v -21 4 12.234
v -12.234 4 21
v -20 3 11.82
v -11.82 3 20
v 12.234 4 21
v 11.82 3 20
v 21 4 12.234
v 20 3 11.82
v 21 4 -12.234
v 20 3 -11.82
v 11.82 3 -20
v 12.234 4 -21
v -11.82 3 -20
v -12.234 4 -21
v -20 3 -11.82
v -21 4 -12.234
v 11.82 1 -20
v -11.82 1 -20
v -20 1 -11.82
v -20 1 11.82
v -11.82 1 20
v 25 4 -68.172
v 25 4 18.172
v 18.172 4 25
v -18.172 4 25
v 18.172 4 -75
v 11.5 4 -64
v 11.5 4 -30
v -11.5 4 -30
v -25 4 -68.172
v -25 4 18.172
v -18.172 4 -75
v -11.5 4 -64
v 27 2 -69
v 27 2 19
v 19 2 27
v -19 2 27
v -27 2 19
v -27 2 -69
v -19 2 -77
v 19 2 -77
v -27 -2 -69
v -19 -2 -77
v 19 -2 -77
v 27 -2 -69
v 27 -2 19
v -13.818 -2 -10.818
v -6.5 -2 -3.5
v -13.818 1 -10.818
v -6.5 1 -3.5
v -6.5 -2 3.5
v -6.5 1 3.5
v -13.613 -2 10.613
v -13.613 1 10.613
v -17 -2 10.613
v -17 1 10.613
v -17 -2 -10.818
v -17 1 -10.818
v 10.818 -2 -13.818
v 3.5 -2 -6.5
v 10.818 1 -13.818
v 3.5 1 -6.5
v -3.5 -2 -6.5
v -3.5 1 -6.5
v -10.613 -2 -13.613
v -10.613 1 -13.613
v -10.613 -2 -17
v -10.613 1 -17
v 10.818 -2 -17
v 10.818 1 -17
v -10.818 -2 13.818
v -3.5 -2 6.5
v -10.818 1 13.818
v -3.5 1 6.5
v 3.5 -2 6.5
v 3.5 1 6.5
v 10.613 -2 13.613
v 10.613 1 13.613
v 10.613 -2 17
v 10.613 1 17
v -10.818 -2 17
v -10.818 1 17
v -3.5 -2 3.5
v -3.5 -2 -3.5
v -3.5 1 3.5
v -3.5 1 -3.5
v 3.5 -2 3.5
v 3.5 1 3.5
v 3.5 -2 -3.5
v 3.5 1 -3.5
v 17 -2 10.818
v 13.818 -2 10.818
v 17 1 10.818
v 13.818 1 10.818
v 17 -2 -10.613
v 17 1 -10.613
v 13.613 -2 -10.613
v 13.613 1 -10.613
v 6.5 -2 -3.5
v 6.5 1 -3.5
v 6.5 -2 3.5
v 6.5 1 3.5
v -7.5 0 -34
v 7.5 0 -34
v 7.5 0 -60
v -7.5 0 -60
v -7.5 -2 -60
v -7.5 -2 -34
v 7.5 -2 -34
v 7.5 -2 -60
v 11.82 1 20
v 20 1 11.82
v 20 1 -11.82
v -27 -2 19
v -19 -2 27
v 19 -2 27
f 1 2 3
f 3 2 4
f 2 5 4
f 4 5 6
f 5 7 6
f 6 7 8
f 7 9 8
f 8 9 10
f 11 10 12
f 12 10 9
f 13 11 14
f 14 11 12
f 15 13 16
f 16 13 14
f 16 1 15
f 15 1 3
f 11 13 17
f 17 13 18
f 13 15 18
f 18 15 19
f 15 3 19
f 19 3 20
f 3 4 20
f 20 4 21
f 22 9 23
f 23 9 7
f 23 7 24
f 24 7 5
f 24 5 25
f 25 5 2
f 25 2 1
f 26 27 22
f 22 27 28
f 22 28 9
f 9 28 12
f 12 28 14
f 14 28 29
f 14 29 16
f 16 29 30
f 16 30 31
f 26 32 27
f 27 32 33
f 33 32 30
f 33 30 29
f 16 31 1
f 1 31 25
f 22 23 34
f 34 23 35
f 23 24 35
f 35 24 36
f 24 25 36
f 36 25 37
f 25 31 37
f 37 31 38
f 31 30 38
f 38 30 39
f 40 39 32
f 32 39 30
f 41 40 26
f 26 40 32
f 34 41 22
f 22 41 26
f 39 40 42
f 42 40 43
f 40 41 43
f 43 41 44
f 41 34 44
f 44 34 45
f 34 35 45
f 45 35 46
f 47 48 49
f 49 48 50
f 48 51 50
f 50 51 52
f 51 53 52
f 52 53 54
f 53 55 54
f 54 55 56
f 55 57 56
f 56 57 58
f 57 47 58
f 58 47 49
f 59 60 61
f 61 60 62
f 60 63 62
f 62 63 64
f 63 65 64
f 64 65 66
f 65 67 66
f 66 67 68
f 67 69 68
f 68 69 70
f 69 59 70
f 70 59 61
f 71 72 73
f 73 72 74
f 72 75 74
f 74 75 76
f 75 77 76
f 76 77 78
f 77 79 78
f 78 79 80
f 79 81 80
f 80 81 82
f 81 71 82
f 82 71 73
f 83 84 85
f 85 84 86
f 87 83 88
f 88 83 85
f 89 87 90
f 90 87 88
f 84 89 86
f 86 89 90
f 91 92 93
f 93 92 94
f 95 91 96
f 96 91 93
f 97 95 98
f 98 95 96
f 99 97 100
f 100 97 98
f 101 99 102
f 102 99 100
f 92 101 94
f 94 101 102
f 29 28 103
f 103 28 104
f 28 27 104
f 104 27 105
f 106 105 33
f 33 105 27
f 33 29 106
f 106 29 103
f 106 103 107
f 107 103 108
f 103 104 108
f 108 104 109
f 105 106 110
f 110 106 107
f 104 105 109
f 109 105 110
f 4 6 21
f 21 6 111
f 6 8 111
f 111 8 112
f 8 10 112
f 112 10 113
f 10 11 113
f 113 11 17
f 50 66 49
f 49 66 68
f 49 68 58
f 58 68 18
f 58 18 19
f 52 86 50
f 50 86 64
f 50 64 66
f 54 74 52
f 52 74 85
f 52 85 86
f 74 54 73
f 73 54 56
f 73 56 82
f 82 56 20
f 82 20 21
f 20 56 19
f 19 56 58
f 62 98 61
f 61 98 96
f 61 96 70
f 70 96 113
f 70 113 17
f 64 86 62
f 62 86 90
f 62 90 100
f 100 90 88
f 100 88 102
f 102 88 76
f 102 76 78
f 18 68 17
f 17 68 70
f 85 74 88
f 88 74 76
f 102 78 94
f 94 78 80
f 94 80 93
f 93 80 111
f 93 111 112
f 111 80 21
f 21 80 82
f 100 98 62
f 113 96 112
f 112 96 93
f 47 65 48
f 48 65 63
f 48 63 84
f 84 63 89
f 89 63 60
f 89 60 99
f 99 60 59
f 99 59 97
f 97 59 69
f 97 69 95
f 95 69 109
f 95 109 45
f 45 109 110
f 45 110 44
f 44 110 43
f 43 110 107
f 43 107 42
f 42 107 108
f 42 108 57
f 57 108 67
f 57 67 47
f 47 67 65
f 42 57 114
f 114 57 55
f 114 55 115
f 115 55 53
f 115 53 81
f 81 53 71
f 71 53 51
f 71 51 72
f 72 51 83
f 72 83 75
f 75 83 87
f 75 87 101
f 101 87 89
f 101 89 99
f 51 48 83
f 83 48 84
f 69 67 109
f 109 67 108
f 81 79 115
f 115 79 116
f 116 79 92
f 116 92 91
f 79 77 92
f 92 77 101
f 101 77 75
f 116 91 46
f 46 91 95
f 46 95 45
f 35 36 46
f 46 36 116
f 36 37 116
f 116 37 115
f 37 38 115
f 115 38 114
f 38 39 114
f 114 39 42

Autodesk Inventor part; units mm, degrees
ref_plane "YZ Plane" through (0, 0, 0) normal (1, 0, 0) x (0, 1, 0)
ref_plane "XZ Plane" through (0, 0, 0) normal (0, 1, 0) x (-1, 0, 0)
ref_plane "XY Plane" through (0, 0, 0) normal (0, 0, 1) x (1, 0, 0)
sketch "Sketch1" plane through (0, 0, 0) normal (0, 1, 0) x (-1, 0, 0)
  line L0 (-20, 20) -> (20, 20)
  line L1 (20, 20) -> (20, -20)
  line L2 (20, -20) -> (-20, -20)
  line L3 (-20, -20) -> (-20, 20)
  line L4 (-20, 20) -> (20, -20) construction
  line L5 (20, 20) -> (-20, -20) construction
  line L6 (27, 27) -> (-27, 27)
  line L7 (-27, 27) -> (-27, -77)
  line L8 (-27, -77) -> (27, -77)
  line L9 (27, -77) -> (27, 27)
  line L10 (27, -27) -> (-27, -27)
  line L11 (7.5, -39) -> (-7.5, -39)
  line L12 (-7.5, -39) -> (-7.5, -65)
  line L13 (-7.5, -65) -> (7.5, -65)
  line L14 (7.5, -65) -> (7.5, -39)
  line L15 (-27, 19) -> (-19, 27)
  line L16 (27, 19) -> (19, 27)
  line L17 (0, -31.8198) -> (-31.8198, 0)
  line L18 (-31.8198, 0) -> (0, 31.8198)
  line L19 (0, 31.8198) -> (31.8198, 0)
  line L20 (31.8198, 0) -> (0, -31.8198)
  line L21 (0, -31.8198) -> (0, 31.8198) construction
  line L22 (-31.8198, 0) -> (31.8198, 0) construction
  line L23 (-19, -77) -> (-27, -69)
  line L24 (27, -69) -> (19, -77)
  point P0 (0, 0)
  point P1 (20, 0)
  point P2 (0, -27)
  point P3 (0, -65)
  point P4 (-7.5, -52)
  point P5 (-20, -11.8198)
  point P6 (-20, 11.8198)
  point P7 (-11.8198, 20)
  point P8 (11.8198, 20)
  point P9 (20, 11.8198)
  point P10 (20, -11.8198)
  point P11 (11.8198, -20)
  point P12 (-11.8198, -20)
  dimension "d0" = 40
  dimension "d1" = 40
  dimension "d2" = 7
  dimension "d3" = 7
  dimension "d4" = 7
  dimension "d5" = 7
  dimension "d6" = 50
  dimension "d7" = 0
  dimension "d8" = 25
  dimension "d9" = 26
  dimension "d10" = 15
  dimension "d11" = 45
  dimension "d12" = 135
  dimension "d13" = 45
  dimension "d14" = 8
  dimension "d15" = 135
  dimension "d16" = 8
  dimension "d21" = 135
  dimension "d22" = 8
  dimension "d23" = 8
extrude "Extrusion1" add sketch "Sketch1" along normal blind 4 and the other way blind 2 contours L3 L18 L7 L15 L6 L0 | L0 L18 L3 | L18 L6 L19 L0 | L0 L19 L1 L20 L2 L17 L3 L18 | L3 L17 L7 L18 | L19 L6 L16 L9 L1 L0 | L0 L1 L19 | L17 L2 L3 | L3 L2 L17 L10 L7 | L19 L9 L20 L1 | L2 L20 L10 L17 | L20 L9 L10 L2 L1 | L1 L2 L20 | L17 L20 L10 L9 L24 L8 L23 L7 | L10 L20 L17 | L14 L13 L12 L11
sketch "Sketch8" plane through (0, 4, 0) normal (0, 1, 0) x (1, 0, 0)
  line L0 (7.5, 70) -> (7.5, 44) projected
  line L1 (-7.5, 44) -> (-7.5, 70) projected
  line L2 (7.5, 70) -> (-7.5, 70)
  line L3 (-7.5, 70) -> (-7.5, 44)
  line L4 (-7.5, 44) -> (7.5, 44)
  line L5 (7.5, 44) -> (7.5, 70)
  line L6 (-20, 20) -> (20, 20)
  line L7 (20, 20) -> (20, -20)
  line L8 (20, -20) -> (-20, -20)
  line L9 (-20, -20) -> (-20, 20)
  line L10 (20, 11.8198) -> (20, -11.8198) projected
  line L11 (11.8198, -20) -> (-11.8198, -20) projected
  line L12 (-20, -11.8198) -> (-20, 11.8198) projected
  line L13 (-11.8198, 20) -> (11.8198, 20) projected
  line L14 (20, 11.8198) -> (11.8198, 20) projected
  line L15 (20, 11.8198) -> (11.8198, 20)
  line L16 (20, -11.8198) -> (20, 11.8198) projected
  line L17 (20, -11.8198) -> (11.8198, -20) projected
  line L18 (20, -11.8198) -> (11.8198, -20)
  line L19 (-20, -11.8198) -> (-11.8198, -20)
  line L20 (-11.8198, 20) -> (-20, 11.8198)
  point P0 (0, 0)
  point P1 (-11.8198, -20)
  point P2 (11.8198, 20)
  dimension "d35" = 0
  dimension "d36" = 0
  dimension "d37" = 0
  dimension "d38" = 0
extrude "Extrusion3" cut sketch "Sketch8" against normal blind 3 contours L6 L14 L7 L17 L8 L19 L9 L20
sketch "Sketch10" plane through (0, 4, 0) normal (0, 1, 0) x (1, 0, 0)
  line L0 (7.5, 60) -> (-7.5, 60)
  line L1 (-7.5, 60) -> (-7.5, 34)
  line L2 (-7.5, 34) -> (7.5, 34)
  line L3 (7.5, 34) -> (7.5, 60)
  line L4 (19, 77) -> (-19, 77) projected
  point P0 (0, 0)
  point P1 (0, 77)
  point P2 (0, 34)
  point P3 (7.5, 47)
  dimension "d41" = 0
  dimension "d42" = 15
  dimension "d43" = 26
  dimension "d44" = 30
extrude "Extrusion4" cut sketch "Sketch10" against normal through all
chamfer "Chamfer1" distance 4 angle 45 4 edges at (7.5, 4, -47) (0, 4, -60) (-7.5, 4, -47) (0, 4, -34)
sketch "Sketch11" plane through (0, 1, 0) normal (0, 1, 0) x (1, 0, 0)
  line L0 (-3.5, 3.5) -> (3.5, 3.5)
  line L1 (3.5, 3.5) -> (3.5, -3.5)
  line L2 (3.5, -3.5) -> (-3.5, -3.5)
  line L3 (-3.5, -3.5) -> (-3.5, 3.5)
  line L4 (-3.5, 3.5) -> (3.5, -3.5) construction
  line L5 (3.5, 3.5) -> (-3.5, -3.5) construction
  line L6 (17, 10.6132) -> (17, -10.818)
  line L7 (20, 11.8198) -> (20, -11.8198) projected
  line L8 (6.5, 3.5) -> (6.5, -3.5)
  line L9 (17, 10.6132) -> (10.2264, 10.6132)
  line L10 (17, -10.818) -> (11.4927, -10.818)
  line L11 (6.5, -3.5) -> (13.818, -10.818)
  line L12 (6.5, 3.5) -> (13.6132, 10.6132)
  line L13 (20, -11.8198) -> (11.8198, -20) projected
  line L14 (11.8198, 20) -> (20, 11.8198) projected
  point P0 (0, 0)
  point P1 (6.5, 0)
  point P2 (3.5, 0)
  dimension "d50" = 7
  dimension "d51" = 7
  dimension "d52" = 3
  dimension "d53" = 3
  dimension "d54" = 0
  dimension "d55" = 7
extrude "Extrusion5" cut sketch "Sketch11" against normal through all
pattern_circular "Circular Pattern1" count 4 over 360 about axis through (0, -10, 0) along (0, 1, 0) of "Extrusion5"
chamfer "Chamfer2" distance 2 angle 45 8 edges at (-27, 4, -25) (-23, 4, -73) (0, 4, -77) (23, 4, -73) (27, 4, -25) (23, 4, 23) (0, 4, 27) (-23, 4, 23)
chamfer "Chamfer3" distance 1 angle 45 8 edges at (20, 4, 0) (15.9099, 4, -15.9099) (0, 4, -20) (-15.9099, 4, -15.9099) (-20, 4, 0) (-15.9099, 4, 15.9099) (0, 4, 20) (15.9099, 4, 15.9099)
properties part number "front_pannel_v2"
